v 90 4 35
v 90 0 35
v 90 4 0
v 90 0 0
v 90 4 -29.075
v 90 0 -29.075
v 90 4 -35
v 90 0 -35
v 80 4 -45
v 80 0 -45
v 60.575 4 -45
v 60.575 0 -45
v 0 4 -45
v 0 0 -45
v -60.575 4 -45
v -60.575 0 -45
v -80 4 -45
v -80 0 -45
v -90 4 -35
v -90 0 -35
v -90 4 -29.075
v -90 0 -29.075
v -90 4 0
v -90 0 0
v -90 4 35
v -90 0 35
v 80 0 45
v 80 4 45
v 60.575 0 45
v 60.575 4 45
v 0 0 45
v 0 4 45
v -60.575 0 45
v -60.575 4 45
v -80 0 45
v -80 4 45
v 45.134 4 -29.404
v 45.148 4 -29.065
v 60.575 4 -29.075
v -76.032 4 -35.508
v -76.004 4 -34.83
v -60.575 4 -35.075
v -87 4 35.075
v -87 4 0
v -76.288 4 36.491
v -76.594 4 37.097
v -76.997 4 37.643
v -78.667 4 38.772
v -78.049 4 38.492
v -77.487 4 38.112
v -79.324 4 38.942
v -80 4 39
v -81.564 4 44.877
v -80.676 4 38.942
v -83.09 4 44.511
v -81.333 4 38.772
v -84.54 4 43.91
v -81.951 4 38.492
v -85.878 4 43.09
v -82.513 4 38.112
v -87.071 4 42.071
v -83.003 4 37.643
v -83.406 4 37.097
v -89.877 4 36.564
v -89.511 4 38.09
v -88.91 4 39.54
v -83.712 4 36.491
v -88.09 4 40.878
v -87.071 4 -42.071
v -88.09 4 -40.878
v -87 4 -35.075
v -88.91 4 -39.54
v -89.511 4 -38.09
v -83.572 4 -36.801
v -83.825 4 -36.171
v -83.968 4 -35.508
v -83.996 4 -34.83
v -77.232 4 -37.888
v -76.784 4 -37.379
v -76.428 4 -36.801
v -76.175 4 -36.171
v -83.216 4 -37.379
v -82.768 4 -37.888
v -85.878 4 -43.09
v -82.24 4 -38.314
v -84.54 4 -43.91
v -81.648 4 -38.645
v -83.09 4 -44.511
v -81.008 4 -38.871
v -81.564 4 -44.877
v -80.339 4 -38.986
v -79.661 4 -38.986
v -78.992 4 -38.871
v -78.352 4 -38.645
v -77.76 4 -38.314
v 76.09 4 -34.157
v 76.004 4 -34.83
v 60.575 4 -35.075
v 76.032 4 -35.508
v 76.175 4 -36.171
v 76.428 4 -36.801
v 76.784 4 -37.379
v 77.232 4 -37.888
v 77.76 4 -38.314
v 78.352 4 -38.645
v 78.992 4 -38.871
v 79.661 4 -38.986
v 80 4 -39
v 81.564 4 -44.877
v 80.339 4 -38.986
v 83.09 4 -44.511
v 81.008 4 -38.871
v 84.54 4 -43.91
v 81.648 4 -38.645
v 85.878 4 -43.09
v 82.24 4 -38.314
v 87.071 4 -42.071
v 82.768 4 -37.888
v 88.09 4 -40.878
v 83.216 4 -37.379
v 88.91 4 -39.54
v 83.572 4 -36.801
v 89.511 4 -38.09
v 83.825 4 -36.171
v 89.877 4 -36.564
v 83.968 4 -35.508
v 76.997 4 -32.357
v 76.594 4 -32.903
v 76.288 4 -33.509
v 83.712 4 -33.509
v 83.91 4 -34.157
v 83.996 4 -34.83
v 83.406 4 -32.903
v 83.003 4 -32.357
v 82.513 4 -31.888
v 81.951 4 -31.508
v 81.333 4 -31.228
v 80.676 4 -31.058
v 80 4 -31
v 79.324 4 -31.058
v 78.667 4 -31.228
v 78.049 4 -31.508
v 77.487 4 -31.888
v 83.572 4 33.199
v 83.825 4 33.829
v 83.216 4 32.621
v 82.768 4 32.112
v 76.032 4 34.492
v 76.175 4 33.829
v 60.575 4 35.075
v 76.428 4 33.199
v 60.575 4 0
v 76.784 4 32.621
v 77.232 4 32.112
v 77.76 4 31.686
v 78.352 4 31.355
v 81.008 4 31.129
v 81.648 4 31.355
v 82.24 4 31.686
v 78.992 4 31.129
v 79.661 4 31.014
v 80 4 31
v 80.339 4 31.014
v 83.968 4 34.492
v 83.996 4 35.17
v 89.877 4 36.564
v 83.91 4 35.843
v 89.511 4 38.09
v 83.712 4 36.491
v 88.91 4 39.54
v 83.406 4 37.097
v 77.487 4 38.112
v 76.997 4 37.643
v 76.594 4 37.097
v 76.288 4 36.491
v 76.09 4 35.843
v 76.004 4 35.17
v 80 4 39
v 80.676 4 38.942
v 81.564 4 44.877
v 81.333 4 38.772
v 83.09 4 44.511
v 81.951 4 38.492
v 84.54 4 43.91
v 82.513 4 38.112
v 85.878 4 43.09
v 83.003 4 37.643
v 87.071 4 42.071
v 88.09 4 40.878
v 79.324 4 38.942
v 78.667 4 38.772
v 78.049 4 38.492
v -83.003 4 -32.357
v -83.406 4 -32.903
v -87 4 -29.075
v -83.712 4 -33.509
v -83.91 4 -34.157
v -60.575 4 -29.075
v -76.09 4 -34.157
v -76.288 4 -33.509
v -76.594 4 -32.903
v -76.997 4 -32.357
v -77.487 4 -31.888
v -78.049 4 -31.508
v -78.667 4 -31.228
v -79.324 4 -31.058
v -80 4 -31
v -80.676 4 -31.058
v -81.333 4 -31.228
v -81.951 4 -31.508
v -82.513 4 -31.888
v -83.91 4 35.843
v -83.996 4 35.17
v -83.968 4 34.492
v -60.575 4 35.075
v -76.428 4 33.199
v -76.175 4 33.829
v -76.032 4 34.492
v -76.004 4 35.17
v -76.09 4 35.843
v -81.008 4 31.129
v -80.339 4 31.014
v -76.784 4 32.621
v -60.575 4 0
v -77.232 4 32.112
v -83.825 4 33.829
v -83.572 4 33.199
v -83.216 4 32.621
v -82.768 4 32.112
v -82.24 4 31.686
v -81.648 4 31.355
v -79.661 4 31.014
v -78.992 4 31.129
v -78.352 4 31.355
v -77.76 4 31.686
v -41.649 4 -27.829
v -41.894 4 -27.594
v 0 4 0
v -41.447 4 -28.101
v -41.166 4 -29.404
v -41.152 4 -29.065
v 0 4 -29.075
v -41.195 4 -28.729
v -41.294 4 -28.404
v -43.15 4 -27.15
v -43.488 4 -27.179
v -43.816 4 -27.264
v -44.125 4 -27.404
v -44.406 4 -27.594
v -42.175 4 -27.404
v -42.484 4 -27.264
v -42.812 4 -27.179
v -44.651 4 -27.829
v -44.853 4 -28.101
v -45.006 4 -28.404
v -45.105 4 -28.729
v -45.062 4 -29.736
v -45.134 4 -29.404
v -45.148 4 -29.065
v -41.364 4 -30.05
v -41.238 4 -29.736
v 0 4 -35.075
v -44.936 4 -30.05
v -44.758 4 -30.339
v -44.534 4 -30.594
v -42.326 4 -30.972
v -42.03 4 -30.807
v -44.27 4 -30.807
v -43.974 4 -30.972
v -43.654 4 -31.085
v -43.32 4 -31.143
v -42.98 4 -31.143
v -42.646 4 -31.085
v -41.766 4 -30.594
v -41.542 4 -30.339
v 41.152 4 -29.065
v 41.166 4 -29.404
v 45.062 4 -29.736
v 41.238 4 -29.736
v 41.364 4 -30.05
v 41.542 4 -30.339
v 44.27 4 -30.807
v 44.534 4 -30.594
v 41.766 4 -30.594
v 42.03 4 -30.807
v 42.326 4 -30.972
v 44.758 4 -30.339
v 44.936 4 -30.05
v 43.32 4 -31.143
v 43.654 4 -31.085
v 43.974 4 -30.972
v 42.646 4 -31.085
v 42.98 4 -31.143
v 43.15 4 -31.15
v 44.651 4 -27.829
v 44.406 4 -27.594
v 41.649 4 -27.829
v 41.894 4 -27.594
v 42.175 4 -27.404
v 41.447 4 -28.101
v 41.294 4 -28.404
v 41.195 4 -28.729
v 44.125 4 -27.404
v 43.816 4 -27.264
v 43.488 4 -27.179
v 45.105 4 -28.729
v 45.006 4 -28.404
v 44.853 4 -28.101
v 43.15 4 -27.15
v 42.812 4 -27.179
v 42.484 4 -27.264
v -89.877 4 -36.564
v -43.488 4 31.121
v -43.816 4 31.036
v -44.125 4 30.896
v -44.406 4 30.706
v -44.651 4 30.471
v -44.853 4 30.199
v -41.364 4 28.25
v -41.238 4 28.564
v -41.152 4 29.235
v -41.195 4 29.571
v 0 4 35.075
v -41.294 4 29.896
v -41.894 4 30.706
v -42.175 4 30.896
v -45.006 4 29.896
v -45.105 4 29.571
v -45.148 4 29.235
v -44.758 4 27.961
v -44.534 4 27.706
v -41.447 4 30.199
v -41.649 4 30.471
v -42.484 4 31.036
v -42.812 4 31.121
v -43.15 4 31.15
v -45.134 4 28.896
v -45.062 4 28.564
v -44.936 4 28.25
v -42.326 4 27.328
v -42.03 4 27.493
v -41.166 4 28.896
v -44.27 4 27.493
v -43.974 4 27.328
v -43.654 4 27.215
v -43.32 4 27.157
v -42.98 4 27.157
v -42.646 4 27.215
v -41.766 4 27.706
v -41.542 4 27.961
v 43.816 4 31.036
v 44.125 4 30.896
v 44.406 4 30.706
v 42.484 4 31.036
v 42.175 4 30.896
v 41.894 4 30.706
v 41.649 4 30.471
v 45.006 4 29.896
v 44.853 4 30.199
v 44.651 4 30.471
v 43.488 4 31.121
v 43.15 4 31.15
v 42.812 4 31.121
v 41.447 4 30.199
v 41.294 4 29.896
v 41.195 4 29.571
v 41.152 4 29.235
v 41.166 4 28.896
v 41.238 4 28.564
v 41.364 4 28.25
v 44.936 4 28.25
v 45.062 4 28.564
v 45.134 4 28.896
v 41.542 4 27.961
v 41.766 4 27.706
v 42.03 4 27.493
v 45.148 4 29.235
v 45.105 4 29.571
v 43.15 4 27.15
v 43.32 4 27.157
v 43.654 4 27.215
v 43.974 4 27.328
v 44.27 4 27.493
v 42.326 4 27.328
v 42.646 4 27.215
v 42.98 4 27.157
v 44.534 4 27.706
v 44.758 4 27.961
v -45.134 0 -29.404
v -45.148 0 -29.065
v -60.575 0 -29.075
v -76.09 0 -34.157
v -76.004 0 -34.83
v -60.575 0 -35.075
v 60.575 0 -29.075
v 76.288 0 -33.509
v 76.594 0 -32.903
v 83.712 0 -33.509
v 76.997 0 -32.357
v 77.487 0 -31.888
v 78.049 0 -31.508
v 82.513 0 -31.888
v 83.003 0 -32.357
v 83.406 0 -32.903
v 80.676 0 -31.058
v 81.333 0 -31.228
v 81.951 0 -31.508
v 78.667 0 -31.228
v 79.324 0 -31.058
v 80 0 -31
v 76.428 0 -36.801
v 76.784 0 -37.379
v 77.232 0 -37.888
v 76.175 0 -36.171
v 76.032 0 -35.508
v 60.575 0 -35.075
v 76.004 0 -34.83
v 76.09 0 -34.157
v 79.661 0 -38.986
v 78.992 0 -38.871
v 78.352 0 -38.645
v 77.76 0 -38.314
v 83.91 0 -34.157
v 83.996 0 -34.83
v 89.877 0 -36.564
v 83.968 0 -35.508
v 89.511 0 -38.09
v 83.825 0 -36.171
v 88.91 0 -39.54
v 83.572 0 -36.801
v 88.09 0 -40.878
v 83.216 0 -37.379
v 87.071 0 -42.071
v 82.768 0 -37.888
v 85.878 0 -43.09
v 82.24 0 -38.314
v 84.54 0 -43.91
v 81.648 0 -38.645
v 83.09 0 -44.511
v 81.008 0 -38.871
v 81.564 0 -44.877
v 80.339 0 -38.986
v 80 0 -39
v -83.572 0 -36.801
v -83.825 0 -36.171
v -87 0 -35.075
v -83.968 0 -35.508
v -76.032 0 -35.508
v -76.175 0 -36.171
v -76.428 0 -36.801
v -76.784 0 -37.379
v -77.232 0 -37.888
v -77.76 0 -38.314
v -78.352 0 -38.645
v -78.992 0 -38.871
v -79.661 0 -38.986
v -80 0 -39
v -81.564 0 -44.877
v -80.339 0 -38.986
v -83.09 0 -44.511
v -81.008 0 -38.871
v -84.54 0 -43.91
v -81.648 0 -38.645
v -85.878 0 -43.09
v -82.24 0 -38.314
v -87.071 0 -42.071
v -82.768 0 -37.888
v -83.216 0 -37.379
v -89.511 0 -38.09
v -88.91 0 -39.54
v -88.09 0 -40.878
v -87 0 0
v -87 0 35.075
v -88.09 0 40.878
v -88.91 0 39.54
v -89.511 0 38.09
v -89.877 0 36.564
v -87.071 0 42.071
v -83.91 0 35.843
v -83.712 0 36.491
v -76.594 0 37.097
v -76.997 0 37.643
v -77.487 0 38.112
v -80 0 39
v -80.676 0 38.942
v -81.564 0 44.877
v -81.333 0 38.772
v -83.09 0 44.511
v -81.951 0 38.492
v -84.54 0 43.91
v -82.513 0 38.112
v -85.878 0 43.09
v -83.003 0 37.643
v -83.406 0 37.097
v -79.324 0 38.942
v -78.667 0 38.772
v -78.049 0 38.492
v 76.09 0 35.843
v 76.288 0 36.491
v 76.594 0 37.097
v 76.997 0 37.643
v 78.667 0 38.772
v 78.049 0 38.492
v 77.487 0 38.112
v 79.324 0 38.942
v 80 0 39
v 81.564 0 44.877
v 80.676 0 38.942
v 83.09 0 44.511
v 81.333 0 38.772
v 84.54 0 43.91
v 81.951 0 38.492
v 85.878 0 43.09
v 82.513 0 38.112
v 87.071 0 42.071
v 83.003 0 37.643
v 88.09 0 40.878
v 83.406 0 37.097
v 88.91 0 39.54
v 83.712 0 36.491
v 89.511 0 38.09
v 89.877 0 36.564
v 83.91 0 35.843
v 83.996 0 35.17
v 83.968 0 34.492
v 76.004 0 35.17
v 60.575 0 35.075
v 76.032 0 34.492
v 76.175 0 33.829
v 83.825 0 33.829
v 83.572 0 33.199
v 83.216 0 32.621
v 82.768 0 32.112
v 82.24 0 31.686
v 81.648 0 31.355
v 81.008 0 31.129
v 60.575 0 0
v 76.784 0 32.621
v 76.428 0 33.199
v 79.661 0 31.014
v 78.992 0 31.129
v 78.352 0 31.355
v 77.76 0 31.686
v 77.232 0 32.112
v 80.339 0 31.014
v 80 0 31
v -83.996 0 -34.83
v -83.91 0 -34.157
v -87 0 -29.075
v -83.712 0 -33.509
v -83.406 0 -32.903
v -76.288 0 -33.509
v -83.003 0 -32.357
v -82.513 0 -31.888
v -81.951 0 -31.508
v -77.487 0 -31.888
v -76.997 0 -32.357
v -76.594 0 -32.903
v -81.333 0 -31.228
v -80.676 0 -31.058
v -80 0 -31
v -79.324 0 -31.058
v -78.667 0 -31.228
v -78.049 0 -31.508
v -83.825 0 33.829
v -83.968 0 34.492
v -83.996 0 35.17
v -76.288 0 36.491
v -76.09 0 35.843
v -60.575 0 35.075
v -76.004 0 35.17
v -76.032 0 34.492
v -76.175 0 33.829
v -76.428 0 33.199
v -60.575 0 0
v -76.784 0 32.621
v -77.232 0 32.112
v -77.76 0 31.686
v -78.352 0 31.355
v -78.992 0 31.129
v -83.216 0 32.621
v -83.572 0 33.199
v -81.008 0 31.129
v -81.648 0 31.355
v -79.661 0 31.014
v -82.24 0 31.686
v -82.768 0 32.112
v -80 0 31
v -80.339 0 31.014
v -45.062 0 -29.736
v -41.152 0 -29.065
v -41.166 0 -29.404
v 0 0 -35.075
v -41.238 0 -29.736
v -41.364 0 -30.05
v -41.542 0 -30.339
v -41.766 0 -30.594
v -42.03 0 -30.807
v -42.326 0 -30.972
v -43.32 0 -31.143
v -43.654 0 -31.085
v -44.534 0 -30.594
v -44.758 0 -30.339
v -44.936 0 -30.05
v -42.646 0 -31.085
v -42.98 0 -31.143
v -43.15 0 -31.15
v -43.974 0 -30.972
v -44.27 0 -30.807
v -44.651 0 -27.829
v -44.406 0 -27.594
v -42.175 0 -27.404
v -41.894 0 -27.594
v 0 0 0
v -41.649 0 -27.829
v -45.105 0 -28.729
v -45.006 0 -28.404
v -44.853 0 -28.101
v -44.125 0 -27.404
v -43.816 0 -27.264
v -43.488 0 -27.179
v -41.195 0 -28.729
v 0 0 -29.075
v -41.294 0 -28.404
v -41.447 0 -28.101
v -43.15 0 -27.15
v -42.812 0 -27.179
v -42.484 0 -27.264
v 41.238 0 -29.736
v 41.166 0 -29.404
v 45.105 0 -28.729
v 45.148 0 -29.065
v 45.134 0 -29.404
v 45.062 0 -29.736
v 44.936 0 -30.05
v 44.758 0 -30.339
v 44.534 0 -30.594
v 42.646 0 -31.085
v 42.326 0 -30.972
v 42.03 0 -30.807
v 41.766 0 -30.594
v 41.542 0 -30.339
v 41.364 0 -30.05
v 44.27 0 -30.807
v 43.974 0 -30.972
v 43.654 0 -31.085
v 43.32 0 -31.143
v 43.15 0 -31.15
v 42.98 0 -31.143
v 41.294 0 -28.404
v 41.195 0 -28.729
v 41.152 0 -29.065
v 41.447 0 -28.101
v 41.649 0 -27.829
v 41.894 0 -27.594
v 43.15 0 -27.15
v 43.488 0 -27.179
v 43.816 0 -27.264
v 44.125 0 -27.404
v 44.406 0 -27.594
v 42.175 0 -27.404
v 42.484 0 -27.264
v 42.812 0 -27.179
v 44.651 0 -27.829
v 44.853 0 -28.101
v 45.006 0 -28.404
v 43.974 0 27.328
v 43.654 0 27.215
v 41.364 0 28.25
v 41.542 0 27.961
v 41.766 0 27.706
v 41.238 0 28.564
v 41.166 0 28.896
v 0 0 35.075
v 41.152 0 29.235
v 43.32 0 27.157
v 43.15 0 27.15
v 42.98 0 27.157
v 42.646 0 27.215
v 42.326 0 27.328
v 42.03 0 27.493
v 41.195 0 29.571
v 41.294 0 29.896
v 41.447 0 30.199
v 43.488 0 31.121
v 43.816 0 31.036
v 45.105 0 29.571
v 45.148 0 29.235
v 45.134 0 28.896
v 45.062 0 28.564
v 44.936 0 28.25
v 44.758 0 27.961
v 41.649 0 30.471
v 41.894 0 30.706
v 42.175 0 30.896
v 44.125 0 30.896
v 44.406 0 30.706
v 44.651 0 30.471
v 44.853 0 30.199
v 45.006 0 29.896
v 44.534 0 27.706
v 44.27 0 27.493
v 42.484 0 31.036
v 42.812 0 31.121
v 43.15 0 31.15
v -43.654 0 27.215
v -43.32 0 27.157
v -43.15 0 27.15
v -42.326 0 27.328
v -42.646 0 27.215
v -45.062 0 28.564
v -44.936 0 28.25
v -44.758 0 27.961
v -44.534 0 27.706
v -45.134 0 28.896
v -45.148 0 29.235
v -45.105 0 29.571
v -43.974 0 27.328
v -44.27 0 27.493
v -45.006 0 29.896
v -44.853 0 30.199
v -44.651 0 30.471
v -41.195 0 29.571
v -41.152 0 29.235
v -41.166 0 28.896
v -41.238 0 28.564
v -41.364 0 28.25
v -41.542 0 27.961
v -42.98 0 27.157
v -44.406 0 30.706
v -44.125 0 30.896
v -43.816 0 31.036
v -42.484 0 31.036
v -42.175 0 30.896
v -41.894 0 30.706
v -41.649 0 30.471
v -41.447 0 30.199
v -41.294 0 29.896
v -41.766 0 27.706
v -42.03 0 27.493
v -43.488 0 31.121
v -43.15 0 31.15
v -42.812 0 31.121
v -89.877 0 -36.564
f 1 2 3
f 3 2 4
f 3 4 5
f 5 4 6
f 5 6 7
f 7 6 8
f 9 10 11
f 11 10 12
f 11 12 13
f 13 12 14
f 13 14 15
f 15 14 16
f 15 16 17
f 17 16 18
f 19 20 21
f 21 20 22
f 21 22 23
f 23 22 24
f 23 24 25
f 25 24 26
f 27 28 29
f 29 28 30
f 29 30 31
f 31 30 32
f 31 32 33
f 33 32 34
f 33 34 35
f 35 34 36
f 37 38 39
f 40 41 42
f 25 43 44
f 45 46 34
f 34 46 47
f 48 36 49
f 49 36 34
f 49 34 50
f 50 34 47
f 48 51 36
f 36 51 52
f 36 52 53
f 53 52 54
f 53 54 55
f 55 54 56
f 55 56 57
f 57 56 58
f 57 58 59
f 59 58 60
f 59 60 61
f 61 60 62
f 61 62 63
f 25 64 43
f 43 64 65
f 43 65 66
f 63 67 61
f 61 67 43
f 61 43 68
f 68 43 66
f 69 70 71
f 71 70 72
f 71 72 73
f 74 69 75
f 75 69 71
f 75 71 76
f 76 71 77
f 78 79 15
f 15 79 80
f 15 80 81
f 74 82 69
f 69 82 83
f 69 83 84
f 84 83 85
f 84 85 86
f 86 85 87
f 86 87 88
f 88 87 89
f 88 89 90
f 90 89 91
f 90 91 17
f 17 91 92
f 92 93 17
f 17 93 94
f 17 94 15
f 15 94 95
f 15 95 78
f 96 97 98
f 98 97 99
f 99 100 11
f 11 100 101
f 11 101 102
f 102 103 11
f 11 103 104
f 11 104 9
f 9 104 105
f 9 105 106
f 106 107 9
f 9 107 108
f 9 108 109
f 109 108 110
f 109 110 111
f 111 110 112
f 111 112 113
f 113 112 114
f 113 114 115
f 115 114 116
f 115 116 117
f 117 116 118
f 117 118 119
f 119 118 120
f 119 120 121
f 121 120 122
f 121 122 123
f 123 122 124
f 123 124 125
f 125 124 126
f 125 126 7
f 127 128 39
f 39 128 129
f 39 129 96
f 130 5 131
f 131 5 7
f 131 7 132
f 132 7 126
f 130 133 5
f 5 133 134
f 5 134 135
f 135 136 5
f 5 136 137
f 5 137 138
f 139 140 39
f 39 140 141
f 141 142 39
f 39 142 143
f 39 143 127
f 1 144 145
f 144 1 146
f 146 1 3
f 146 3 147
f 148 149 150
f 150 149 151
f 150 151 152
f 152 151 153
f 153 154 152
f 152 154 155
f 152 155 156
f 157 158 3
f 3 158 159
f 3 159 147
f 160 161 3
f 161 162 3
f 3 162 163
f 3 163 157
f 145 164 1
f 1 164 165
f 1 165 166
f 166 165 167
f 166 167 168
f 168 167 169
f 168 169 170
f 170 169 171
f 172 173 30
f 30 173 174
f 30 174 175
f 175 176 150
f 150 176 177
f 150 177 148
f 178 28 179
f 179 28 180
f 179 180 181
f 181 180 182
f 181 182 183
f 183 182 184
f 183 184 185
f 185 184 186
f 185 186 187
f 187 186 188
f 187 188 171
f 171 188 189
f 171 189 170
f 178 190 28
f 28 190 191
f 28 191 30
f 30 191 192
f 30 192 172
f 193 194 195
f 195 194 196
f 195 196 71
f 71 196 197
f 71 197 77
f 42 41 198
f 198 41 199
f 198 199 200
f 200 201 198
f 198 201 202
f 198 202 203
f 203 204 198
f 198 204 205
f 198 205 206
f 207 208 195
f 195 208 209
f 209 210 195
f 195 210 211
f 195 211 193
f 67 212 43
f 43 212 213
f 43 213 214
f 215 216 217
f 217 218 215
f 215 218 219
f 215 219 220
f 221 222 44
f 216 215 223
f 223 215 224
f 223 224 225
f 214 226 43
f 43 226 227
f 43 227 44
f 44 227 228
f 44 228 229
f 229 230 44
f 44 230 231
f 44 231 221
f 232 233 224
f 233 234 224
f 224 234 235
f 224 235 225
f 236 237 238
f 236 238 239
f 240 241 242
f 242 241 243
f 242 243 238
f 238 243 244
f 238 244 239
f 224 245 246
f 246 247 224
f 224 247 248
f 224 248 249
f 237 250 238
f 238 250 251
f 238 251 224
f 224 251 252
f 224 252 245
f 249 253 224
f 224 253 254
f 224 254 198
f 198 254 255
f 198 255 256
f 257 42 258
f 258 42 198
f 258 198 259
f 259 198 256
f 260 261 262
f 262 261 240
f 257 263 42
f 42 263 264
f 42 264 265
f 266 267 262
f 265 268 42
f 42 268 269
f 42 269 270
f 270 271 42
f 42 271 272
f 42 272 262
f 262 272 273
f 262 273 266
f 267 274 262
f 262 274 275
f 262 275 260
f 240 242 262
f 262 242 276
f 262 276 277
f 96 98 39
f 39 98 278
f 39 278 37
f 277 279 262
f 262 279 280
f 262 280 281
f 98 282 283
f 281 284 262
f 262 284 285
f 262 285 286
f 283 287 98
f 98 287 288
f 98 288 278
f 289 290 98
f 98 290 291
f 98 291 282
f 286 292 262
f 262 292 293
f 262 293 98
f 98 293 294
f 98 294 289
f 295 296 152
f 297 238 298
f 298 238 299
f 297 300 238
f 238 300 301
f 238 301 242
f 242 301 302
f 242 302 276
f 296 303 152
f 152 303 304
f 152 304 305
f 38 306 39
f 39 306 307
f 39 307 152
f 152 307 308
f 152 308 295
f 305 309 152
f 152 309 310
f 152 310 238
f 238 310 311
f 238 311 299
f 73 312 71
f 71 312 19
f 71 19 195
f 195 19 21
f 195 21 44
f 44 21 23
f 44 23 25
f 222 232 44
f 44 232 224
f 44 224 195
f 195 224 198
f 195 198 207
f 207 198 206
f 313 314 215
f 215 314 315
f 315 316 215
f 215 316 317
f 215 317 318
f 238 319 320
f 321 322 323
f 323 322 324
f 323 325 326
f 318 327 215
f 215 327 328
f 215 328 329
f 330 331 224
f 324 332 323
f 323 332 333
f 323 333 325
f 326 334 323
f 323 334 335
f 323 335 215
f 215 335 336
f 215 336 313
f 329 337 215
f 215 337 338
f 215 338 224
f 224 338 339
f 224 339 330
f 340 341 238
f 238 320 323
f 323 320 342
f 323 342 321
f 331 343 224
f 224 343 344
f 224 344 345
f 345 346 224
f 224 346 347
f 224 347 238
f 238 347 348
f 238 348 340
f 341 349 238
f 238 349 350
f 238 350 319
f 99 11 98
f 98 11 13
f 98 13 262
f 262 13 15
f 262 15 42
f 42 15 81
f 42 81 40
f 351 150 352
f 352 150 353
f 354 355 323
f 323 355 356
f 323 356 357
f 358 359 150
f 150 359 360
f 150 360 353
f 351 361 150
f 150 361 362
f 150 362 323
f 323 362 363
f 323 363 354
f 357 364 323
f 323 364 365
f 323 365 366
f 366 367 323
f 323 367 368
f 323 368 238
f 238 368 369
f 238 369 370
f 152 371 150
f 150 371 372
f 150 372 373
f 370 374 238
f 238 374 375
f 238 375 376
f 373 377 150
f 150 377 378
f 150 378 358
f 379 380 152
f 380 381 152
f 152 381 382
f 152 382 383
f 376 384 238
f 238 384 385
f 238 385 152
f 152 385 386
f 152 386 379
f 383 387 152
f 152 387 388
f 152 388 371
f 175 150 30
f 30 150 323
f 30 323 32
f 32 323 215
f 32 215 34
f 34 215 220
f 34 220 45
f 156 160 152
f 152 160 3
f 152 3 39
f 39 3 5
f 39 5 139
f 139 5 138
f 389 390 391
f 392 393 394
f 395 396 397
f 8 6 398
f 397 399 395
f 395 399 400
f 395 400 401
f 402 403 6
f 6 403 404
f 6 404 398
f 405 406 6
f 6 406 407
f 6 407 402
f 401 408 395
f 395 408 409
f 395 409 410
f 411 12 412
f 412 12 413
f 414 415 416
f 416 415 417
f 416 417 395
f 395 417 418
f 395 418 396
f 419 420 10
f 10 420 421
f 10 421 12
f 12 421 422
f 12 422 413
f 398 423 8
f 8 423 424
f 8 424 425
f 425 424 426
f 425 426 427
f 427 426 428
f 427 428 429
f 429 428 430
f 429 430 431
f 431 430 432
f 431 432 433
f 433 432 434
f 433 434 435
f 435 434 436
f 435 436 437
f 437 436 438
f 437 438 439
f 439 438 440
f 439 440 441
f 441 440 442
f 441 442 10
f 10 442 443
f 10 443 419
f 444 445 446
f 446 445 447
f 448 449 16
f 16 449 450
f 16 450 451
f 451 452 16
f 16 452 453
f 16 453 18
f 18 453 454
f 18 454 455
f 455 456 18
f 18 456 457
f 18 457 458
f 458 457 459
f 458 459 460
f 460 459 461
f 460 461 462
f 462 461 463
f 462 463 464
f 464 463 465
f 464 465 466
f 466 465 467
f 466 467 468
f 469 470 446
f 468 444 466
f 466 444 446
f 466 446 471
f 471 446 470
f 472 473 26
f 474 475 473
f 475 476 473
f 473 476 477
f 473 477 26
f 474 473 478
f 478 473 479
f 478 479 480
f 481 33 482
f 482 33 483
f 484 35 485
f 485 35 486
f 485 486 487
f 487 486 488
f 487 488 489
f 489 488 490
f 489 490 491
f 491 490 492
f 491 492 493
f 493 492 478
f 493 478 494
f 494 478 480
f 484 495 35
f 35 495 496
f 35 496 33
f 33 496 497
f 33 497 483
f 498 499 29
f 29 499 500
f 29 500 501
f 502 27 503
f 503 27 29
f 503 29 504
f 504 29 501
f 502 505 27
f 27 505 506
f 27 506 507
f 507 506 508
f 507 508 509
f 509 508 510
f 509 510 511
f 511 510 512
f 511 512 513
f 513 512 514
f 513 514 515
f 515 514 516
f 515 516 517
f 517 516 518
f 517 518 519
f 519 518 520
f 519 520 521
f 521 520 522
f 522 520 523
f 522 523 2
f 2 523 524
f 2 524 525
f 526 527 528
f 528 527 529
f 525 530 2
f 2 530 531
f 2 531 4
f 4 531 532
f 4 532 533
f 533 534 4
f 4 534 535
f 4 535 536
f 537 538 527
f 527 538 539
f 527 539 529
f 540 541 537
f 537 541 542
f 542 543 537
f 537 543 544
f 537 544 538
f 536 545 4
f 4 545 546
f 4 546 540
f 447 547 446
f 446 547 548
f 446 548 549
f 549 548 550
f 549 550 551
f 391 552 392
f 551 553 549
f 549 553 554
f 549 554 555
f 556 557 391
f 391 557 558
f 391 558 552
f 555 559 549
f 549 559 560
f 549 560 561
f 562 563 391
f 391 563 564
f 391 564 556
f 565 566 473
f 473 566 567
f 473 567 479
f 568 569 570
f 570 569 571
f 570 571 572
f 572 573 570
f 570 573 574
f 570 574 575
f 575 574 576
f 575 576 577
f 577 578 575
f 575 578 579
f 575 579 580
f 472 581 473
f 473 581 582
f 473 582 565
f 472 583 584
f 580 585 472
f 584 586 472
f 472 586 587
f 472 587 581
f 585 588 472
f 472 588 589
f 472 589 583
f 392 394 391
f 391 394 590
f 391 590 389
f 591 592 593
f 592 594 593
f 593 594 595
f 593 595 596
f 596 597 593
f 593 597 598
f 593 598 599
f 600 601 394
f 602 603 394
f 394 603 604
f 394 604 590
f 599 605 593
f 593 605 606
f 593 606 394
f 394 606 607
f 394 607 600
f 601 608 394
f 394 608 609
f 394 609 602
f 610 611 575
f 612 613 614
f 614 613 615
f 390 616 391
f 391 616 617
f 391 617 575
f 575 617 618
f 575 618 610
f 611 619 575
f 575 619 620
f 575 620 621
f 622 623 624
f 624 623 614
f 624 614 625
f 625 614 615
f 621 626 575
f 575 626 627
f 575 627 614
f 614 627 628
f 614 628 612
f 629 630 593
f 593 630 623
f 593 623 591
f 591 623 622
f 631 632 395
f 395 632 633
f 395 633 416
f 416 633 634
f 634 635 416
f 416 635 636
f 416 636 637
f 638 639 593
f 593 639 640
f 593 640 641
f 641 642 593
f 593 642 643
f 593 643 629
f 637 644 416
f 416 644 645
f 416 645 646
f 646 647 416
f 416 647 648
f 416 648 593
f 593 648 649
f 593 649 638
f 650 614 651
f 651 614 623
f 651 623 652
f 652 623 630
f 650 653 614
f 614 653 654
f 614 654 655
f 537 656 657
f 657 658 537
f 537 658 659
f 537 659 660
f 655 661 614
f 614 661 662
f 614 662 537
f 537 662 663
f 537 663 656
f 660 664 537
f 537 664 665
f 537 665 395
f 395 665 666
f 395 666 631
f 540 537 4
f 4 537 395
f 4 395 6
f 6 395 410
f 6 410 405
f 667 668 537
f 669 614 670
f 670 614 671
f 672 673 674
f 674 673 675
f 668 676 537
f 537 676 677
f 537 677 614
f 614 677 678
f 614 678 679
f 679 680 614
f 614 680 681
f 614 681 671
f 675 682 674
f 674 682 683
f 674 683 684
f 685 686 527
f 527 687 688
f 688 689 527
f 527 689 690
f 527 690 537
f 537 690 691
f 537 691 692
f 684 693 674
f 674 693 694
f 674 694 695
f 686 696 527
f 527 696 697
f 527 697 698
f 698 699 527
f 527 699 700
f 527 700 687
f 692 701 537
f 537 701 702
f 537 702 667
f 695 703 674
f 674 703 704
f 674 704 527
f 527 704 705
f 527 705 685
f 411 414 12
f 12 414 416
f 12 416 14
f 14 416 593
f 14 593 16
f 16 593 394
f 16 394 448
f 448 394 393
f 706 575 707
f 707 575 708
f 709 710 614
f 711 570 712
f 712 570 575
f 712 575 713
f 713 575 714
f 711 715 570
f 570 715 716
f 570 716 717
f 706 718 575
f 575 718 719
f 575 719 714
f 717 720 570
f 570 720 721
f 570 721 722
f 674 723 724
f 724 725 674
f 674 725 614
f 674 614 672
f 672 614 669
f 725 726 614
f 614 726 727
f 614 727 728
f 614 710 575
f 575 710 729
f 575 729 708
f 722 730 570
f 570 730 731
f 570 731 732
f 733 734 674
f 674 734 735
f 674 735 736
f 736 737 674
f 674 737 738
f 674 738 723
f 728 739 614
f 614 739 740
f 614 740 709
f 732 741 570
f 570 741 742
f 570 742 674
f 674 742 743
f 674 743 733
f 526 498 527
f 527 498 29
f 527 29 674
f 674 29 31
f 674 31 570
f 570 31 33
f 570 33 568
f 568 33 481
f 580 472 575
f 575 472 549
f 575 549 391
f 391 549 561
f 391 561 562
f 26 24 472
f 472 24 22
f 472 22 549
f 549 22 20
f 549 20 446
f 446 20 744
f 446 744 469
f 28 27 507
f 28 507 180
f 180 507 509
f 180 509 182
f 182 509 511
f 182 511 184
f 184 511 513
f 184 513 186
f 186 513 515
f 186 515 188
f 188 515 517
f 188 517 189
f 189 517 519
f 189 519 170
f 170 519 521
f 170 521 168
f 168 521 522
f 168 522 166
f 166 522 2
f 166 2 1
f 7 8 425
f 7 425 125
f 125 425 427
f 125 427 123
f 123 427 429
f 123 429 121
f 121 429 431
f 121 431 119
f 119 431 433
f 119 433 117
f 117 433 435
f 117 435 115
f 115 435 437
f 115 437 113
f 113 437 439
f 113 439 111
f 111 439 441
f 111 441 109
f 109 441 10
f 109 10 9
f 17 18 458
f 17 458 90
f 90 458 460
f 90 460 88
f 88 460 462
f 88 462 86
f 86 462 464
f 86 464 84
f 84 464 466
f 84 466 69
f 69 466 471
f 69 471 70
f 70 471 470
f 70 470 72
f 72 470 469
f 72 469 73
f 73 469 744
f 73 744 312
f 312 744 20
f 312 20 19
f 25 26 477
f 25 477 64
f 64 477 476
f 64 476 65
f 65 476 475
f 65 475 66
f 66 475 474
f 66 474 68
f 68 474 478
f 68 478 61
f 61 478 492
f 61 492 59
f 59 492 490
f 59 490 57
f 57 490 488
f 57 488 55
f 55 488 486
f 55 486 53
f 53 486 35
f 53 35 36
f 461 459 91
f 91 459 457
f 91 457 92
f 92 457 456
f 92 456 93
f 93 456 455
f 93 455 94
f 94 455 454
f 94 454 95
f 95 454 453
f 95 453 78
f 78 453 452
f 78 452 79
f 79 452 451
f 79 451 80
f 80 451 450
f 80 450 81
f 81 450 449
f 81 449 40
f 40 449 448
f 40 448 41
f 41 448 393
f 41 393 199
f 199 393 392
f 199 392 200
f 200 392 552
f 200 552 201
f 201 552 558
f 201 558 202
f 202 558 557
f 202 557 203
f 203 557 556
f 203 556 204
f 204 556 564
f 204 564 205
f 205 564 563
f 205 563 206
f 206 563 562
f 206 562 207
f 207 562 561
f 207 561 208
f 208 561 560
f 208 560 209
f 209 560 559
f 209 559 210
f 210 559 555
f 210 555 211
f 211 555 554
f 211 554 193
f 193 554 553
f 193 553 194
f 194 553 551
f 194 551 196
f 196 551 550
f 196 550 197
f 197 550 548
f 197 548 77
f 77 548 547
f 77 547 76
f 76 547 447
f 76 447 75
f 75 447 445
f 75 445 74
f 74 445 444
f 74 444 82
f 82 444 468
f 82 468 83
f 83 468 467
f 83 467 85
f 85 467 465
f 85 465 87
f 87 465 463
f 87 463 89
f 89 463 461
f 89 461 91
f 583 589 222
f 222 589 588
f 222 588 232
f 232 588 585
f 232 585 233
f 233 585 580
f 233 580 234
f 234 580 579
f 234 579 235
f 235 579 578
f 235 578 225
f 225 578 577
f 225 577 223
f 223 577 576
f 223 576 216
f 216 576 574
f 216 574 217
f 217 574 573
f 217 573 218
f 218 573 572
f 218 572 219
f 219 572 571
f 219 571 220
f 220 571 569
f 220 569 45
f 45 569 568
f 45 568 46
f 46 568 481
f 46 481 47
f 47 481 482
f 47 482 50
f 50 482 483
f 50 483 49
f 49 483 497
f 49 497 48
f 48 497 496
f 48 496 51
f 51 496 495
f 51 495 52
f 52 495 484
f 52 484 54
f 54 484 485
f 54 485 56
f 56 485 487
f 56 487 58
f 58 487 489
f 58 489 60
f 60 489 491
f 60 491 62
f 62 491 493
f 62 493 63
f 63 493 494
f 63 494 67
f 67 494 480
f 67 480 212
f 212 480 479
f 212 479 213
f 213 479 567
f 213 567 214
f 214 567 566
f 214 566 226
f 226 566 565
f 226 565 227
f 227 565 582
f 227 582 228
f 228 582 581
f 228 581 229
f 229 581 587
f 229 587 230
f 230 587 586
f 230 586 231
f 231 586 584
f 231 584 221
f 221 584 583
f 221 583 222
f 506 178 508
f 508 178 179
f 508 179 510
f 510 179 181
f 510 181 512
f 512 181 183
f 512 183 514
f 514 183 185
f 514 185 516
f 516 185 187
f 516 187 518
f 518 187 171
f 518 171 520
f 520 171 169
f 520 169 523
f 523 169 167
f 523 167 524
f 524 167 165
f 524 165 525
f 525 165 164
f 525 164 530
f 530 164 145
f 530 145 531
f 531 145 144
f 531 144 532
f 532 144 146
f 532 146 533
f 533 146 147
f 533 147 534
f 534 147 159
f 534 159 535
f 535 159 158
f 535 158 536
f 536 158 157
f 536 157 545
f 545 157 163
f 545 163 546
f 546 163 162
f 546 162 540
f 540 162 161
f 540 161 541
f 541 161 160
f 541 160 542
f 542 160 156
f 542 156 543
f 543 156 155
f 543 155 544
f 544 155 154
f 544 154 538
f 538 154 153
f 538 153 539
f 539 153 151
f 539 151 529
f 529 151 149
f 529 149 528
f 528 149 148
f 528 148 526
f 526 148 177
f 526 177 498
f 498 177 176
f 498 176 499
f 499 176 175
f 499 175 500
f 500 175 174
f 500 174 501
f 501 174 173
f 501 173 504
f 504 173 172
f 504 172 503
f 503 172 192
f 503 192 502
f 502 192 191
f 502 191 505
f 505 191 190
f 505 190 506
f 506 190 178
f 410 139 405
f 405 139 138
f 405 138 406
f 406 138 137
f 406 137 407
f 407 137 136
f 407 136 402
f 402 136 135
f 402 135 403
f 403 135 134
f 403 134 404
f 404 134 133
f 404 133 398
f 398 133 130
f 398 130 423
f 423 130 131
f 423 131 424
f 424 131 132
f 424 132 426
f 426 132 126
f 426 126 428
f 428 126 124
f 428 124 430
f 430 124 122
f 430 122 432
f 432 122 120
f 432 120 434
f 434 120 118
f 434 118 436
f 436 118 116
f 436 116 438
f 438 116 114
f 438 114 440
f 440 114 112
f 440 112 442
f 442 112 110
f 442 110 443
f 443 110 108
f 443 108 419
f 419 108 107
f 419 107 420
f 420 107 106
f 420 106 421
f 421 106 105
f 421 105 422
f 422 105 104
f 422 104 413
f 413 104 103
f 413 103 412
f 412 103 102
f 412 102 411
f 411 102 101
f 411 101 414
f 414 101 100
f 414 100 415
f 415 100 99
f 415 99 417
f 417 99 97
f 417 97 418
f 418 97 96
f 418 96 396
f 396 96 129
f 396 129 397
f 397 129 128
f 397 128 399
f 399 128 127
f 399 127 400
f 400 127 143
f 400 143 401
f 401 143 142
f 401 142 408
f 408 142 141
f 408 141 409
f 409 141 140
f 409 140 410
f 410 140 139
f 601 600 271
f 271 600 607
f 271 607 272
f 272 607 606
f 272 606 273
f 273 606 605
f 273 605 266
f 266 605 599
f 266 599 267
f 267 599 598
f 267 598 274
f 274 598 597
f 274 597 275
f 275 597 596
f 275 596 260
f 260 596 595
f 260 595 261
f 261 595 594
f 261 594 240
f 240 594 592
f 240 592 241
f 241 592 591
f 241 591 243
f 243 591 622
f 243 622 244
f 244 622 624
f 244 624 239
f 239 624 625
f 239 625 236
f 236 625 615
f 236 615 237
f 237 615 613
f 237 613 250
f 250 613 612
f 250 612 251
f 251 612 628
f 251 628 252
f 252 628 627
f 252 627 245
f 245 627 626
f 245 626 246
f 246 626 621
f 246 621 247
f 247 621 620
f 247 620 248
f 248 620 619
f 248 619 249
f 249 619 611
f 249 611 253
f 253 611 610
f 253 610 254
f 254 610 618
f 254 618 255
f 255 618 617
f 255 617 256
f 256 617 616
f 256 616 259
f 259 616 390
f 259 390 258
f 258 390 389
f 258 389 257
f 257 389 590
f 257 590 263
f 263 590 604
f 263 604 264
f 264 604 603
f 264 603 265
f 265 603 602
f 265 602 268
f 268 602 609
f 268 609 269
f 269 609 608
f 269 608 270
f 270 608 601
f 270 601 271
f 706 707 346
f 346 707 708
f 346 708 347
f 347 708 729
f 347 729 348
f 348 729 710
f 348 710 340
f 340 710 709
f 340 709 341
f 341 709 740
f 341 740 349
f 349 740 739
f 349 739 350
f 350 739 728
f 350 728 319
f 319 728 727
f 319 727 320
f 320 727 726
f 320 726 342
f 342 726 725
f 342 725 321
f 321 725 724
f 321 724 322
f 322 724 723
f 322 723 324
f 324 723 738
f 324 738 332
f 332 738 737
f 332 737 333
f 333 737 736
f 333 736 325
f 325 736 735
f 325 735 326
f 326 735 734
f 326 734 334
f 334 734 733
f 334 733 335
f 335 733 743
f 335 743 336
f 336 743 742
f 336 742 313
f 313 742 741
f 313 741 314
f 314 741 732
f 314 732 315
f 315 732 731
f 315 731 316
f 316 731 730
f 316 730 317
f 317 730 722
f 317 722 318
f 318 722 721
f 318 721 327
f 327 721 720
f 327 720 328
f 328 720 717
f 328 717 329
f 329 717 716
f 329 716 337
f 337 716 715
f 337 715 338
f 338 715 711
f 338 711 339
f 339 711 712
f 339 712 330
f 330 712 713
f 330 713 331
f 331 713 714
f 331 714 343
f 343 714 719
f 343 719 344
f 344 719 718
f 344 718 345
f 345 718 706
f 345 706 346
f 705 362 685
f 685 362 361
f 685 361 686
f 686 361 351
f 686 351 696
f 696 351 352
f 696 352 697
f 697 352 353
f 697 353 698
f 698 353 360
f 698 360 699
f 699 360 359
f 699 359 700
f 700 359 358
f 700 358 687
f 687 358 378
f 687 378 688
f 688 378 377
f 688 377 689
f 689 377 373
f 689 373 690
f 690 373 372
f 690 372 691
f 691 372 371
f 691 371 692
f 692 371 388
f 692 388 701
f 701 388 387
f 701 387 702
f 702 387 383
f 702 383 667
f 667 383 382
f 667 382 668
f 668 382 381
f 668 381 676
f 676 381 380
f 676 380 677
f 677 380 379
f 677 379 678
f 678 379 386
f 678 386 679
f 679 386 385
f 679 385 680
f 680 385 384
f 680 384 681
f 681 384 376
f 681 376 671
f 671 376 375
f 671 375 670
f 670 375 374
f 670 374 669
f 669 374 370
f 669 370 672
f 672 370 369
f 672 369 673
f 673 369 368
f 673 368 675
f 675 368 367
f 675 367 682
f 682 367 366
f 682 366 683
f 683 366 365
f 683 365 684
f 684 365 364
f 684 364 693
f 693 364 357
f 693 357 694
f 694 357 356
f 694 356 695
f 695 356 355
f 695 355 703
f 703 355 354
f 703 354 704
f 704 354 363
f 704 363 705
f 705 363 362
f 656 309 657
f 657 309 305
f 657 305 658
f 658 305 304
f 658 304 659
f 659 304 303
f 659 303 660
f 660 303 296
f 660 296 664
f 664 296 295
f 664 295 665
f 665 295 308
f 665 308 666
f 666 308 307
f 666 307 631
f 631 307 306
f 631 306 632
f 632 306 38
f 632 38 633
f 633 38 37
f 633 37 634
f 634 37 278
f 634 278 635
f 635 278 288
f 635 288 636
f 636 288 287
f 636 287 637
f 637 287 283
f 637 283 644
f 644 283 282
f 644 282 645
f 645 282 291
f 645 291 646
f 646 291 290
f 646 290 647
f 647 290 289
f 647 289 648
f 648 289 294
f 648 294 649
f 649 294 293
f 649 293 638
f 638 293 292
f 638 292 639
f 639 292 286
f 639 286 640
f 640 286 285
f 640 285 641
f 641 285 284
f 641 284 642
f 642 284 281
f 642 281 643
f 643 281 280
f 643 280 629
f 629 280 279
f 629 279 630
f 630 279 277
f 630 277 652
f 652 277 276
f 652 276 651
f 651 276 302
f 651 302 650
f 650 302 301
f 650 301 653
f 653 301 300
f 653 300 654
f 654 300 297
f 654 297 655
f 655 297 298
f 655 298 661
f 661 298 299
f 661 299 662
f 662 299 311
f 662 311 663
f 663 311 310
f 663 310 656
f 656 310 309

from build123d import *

# Parameters (mm, degrees)
CROQUIS2_W              = 180
CROQUIS2_H              = 90
SALIENTE_EXTRUIR1_DEPTH = 4
REDONDEO1_R             = 10
CORTAR_EXTRUIR2_REACH   = 102.703
CROQUIS4_R              = 4
CORTAR_EXTRUIR3_REACH   = 102.703
CROQUIS5_R              = 2


with BuildPart() as part:
    # Croquis2 → Saliente-Extruir1 (new body)
    with BuildSketch(Plane(origin=(0, 0, 0), x_dir=(1, 0, 0), z_dir=(0, 1, 0))):
        Rectangle(CROQUIS2_W, CROQUIS2_H)
    extrude(amount=SALIENTE_EXTRUIR1_DEPTH)

    # Redondeo1
    redondeo1_edges = [part.edges().sort_by_distance(p)[0] for p in [
        (90, 2, 45),
        (-90, 2, 45),
        (-90, 2, -45),
        (90, 2, -45),
    ]]
    fillet(redondeo1_edges, radius=REDONDEO1_R)

    # Croquis4 → Cortar-Extruir2 (cut, up to next)
    with BuildSketch(Plane(origin=(0, 4, 0), x_dir=(1, 0, 0), z_dir=(0, 1, 0)), mode=Mode.PRIVATE) as cortar_extruir2_sk1:
        with Locations(Location((-80, 35, 0), (0, 0, 270))):
            Circle(CROQUIS4_R)
    cortar_extruir2_tool1 = extrude(cortar_extruir2_sk1.sketch, amount=-CORTAR_EXTRUIR2_REACH, mode=Mode.PRIVATE) & part.part
    # Croquis4 → Cortar-Extruir2 (cut, up to next)
    with BuildSketch(Plane(origin=(0, 4, 0), x_dir=(1, 0, 0), z_dir=(0, 1, 0)), mode=Mode.PRIVATE) as cortar_extruir2_sk2:
        with Locations(Location((-80, -35, 0), (0, 0, 270))):
            Circle(CROQUIS4_R)
    cortar_extruir2_tool2 = extrude(cortar_extruir2_sk2.sketch, amount=-CORTAR_EXTRUIR2_REACH, mode=Mode.PRIVATE) & part.part
    # Croquis4 → Cortar-Extruir2 (cut, up to next)
    with BuildSketch(Plane(origin=(0, 4, 0), x_dir=(1, 0, 0), z_dir=(0, 1, 0)), mode=Mode.PRIVATE) as cortar_extruir2_sk3:
        with Locations(Location((80, -35, 0), (0, 0, 90))):
            Circle(CROQUIS4_R)
    cortar_extruir2_tool3 = extrude(cortar_extruir2_sk3.sketch, amount=-CORTAR_EXTRUIR2_REACH, mode=Mode.PRIVATE) & part.part
    # Croquis4 → Cortar-Extruir2 (cut, up to next)
    with BuildSketch(Plane(origin=(0, 4, 0), x_dir=(1, 0, 0), z_dir=(0, 1, 0)), mode=Mode.PRIVATE) as cortar_extruir2_sk4:
        with Locations(Location((80, 35, 0), (0, 0, 90))):
            Circle(CROQUIS4_R)
    cortar_extruir2_tool4 = extrude(cortar_extruir2_sk4.sketch, amount=-CORTAR_EXTRUIR2_REACH, mode=Mode.PRIVATE) & part.part
    add(cortar_extruir2_tool1.solids().sort_by_distance((-80, 4, -35))[0], mode=Mode.SUBTRACT)
    add(cortar_extruir2_tool2.solids().sort_by_distance((-80, 4, 35))[0], mode=Mode.SUBTRACT)
    add(cortar_extruir2_tool3.solids().sort_by_distance((80, 4, 35))[0], mode=Mode.SUBTRACT)
    add(cortar_extruir2_tool4.solids().sort_by_distance((80, 4, -35))[0], mode=Mode.SUBTRACT)

    # Croquis5 → Cortar-Extruir3 (cut, up to next)
    with BuildSketch(Plane(origin=(0, 4, 0), x_dir=(1, 0, 0), z_dir=(0, 1, 0)), mode=Mode.PRIVATE) as cortar_extruir3_sk1:
        with Locations(Location((-43.15, 29.15, 0), (0, 0, 270))):
            Circle(CROQUIS5_R)
    cortar_extruir3_tool1 = extrude(cortar_extruir3_sk1.sketch, amount=-CORTAR_EXTRUIR3_REACH, mode=Mode.PRIVATE) & part.part
    # Croquis5 → Cortar-Extruir3 (cut, up to next)
    with BuildSketch(Plane(origin=(0, 4, 0), x_dir=(1, 0, 0), z_dir=(0, 1, 0)), mode=Mode.PRIVATE) as cortar_extruir3_sk2:
        with Locations(Location((-43.15, -29.15, 0), (0, 0, 270))):
            Circle(CROQUIS5_R)
    cortar_extruir3_tool2 = extrude(cortar_extruir3_sk2.sketch, amount=-CORTAR_EXTRUIR3_REACH, mode=Mode.PRIVATE) & part.part
    # Croquis5 → Cortar-Extruir3 (cut, up to next)
    with BuildSketch(Plane(origin=(0, 4, 0), x_dir=(1, 0, 0), z_dir=(0, 1, 0)), mode=Mode.PRIVATE) as cortar_extruir3_sk3:
        with Locations(Location((43.15, -29.15, 0), (0, 0, 90))):
            Circle(CROQUIS5_R)
    cortar_extruir3_tool3 = extrude(cortar_extruir3_sk3.sketch, amount=-CORTAR_EXTRUIR3_REACH, mode=Mode.PRIVATE) & part.part
    # Croquis5 → Cortar-Extruir3 (cut, up to next)
    with BuildSketch(Plane(origin=(0, 4, 0), x_dir=(1, 0, 0), z_dir=(0, 1, 0)), mode=Mode.PRIVATE) as cortar_extruir3_sk4:
        with Locations(Location((43.15, 29.15, 0), (0, 0, 90))):
            Circle(CROQUIS5_R)
    cortar_extruir3_tool4 = extrude(cortar_extruir3_sk4.sketch, amount=-CORTAR_EXTRUIR3_REACH, mode=Mode.PRIVATE) & part.part
    add(cortar_extruir3_tool1.solids().sort_by_distance((-43.15, 4, -29.15))[0], mode=Mode.SUBTRACT)
    add(cortar_extruir3_tool2.solids().sort_by_distance((-43.15, 4, 29.15))[0], mode=Mode.SUBTRACT)
    add(cortar_extruir3_tool3.solids().sort_by_distance((43.15, 4, 29.15))[0], mode=Mode.SUBTRACT)
    add(cortar_extruir3_tool4.solids().sort_by_distance((43.15, 4, -29.15))[0], mode=Mode.SUBTRACT)


solid = part.part
